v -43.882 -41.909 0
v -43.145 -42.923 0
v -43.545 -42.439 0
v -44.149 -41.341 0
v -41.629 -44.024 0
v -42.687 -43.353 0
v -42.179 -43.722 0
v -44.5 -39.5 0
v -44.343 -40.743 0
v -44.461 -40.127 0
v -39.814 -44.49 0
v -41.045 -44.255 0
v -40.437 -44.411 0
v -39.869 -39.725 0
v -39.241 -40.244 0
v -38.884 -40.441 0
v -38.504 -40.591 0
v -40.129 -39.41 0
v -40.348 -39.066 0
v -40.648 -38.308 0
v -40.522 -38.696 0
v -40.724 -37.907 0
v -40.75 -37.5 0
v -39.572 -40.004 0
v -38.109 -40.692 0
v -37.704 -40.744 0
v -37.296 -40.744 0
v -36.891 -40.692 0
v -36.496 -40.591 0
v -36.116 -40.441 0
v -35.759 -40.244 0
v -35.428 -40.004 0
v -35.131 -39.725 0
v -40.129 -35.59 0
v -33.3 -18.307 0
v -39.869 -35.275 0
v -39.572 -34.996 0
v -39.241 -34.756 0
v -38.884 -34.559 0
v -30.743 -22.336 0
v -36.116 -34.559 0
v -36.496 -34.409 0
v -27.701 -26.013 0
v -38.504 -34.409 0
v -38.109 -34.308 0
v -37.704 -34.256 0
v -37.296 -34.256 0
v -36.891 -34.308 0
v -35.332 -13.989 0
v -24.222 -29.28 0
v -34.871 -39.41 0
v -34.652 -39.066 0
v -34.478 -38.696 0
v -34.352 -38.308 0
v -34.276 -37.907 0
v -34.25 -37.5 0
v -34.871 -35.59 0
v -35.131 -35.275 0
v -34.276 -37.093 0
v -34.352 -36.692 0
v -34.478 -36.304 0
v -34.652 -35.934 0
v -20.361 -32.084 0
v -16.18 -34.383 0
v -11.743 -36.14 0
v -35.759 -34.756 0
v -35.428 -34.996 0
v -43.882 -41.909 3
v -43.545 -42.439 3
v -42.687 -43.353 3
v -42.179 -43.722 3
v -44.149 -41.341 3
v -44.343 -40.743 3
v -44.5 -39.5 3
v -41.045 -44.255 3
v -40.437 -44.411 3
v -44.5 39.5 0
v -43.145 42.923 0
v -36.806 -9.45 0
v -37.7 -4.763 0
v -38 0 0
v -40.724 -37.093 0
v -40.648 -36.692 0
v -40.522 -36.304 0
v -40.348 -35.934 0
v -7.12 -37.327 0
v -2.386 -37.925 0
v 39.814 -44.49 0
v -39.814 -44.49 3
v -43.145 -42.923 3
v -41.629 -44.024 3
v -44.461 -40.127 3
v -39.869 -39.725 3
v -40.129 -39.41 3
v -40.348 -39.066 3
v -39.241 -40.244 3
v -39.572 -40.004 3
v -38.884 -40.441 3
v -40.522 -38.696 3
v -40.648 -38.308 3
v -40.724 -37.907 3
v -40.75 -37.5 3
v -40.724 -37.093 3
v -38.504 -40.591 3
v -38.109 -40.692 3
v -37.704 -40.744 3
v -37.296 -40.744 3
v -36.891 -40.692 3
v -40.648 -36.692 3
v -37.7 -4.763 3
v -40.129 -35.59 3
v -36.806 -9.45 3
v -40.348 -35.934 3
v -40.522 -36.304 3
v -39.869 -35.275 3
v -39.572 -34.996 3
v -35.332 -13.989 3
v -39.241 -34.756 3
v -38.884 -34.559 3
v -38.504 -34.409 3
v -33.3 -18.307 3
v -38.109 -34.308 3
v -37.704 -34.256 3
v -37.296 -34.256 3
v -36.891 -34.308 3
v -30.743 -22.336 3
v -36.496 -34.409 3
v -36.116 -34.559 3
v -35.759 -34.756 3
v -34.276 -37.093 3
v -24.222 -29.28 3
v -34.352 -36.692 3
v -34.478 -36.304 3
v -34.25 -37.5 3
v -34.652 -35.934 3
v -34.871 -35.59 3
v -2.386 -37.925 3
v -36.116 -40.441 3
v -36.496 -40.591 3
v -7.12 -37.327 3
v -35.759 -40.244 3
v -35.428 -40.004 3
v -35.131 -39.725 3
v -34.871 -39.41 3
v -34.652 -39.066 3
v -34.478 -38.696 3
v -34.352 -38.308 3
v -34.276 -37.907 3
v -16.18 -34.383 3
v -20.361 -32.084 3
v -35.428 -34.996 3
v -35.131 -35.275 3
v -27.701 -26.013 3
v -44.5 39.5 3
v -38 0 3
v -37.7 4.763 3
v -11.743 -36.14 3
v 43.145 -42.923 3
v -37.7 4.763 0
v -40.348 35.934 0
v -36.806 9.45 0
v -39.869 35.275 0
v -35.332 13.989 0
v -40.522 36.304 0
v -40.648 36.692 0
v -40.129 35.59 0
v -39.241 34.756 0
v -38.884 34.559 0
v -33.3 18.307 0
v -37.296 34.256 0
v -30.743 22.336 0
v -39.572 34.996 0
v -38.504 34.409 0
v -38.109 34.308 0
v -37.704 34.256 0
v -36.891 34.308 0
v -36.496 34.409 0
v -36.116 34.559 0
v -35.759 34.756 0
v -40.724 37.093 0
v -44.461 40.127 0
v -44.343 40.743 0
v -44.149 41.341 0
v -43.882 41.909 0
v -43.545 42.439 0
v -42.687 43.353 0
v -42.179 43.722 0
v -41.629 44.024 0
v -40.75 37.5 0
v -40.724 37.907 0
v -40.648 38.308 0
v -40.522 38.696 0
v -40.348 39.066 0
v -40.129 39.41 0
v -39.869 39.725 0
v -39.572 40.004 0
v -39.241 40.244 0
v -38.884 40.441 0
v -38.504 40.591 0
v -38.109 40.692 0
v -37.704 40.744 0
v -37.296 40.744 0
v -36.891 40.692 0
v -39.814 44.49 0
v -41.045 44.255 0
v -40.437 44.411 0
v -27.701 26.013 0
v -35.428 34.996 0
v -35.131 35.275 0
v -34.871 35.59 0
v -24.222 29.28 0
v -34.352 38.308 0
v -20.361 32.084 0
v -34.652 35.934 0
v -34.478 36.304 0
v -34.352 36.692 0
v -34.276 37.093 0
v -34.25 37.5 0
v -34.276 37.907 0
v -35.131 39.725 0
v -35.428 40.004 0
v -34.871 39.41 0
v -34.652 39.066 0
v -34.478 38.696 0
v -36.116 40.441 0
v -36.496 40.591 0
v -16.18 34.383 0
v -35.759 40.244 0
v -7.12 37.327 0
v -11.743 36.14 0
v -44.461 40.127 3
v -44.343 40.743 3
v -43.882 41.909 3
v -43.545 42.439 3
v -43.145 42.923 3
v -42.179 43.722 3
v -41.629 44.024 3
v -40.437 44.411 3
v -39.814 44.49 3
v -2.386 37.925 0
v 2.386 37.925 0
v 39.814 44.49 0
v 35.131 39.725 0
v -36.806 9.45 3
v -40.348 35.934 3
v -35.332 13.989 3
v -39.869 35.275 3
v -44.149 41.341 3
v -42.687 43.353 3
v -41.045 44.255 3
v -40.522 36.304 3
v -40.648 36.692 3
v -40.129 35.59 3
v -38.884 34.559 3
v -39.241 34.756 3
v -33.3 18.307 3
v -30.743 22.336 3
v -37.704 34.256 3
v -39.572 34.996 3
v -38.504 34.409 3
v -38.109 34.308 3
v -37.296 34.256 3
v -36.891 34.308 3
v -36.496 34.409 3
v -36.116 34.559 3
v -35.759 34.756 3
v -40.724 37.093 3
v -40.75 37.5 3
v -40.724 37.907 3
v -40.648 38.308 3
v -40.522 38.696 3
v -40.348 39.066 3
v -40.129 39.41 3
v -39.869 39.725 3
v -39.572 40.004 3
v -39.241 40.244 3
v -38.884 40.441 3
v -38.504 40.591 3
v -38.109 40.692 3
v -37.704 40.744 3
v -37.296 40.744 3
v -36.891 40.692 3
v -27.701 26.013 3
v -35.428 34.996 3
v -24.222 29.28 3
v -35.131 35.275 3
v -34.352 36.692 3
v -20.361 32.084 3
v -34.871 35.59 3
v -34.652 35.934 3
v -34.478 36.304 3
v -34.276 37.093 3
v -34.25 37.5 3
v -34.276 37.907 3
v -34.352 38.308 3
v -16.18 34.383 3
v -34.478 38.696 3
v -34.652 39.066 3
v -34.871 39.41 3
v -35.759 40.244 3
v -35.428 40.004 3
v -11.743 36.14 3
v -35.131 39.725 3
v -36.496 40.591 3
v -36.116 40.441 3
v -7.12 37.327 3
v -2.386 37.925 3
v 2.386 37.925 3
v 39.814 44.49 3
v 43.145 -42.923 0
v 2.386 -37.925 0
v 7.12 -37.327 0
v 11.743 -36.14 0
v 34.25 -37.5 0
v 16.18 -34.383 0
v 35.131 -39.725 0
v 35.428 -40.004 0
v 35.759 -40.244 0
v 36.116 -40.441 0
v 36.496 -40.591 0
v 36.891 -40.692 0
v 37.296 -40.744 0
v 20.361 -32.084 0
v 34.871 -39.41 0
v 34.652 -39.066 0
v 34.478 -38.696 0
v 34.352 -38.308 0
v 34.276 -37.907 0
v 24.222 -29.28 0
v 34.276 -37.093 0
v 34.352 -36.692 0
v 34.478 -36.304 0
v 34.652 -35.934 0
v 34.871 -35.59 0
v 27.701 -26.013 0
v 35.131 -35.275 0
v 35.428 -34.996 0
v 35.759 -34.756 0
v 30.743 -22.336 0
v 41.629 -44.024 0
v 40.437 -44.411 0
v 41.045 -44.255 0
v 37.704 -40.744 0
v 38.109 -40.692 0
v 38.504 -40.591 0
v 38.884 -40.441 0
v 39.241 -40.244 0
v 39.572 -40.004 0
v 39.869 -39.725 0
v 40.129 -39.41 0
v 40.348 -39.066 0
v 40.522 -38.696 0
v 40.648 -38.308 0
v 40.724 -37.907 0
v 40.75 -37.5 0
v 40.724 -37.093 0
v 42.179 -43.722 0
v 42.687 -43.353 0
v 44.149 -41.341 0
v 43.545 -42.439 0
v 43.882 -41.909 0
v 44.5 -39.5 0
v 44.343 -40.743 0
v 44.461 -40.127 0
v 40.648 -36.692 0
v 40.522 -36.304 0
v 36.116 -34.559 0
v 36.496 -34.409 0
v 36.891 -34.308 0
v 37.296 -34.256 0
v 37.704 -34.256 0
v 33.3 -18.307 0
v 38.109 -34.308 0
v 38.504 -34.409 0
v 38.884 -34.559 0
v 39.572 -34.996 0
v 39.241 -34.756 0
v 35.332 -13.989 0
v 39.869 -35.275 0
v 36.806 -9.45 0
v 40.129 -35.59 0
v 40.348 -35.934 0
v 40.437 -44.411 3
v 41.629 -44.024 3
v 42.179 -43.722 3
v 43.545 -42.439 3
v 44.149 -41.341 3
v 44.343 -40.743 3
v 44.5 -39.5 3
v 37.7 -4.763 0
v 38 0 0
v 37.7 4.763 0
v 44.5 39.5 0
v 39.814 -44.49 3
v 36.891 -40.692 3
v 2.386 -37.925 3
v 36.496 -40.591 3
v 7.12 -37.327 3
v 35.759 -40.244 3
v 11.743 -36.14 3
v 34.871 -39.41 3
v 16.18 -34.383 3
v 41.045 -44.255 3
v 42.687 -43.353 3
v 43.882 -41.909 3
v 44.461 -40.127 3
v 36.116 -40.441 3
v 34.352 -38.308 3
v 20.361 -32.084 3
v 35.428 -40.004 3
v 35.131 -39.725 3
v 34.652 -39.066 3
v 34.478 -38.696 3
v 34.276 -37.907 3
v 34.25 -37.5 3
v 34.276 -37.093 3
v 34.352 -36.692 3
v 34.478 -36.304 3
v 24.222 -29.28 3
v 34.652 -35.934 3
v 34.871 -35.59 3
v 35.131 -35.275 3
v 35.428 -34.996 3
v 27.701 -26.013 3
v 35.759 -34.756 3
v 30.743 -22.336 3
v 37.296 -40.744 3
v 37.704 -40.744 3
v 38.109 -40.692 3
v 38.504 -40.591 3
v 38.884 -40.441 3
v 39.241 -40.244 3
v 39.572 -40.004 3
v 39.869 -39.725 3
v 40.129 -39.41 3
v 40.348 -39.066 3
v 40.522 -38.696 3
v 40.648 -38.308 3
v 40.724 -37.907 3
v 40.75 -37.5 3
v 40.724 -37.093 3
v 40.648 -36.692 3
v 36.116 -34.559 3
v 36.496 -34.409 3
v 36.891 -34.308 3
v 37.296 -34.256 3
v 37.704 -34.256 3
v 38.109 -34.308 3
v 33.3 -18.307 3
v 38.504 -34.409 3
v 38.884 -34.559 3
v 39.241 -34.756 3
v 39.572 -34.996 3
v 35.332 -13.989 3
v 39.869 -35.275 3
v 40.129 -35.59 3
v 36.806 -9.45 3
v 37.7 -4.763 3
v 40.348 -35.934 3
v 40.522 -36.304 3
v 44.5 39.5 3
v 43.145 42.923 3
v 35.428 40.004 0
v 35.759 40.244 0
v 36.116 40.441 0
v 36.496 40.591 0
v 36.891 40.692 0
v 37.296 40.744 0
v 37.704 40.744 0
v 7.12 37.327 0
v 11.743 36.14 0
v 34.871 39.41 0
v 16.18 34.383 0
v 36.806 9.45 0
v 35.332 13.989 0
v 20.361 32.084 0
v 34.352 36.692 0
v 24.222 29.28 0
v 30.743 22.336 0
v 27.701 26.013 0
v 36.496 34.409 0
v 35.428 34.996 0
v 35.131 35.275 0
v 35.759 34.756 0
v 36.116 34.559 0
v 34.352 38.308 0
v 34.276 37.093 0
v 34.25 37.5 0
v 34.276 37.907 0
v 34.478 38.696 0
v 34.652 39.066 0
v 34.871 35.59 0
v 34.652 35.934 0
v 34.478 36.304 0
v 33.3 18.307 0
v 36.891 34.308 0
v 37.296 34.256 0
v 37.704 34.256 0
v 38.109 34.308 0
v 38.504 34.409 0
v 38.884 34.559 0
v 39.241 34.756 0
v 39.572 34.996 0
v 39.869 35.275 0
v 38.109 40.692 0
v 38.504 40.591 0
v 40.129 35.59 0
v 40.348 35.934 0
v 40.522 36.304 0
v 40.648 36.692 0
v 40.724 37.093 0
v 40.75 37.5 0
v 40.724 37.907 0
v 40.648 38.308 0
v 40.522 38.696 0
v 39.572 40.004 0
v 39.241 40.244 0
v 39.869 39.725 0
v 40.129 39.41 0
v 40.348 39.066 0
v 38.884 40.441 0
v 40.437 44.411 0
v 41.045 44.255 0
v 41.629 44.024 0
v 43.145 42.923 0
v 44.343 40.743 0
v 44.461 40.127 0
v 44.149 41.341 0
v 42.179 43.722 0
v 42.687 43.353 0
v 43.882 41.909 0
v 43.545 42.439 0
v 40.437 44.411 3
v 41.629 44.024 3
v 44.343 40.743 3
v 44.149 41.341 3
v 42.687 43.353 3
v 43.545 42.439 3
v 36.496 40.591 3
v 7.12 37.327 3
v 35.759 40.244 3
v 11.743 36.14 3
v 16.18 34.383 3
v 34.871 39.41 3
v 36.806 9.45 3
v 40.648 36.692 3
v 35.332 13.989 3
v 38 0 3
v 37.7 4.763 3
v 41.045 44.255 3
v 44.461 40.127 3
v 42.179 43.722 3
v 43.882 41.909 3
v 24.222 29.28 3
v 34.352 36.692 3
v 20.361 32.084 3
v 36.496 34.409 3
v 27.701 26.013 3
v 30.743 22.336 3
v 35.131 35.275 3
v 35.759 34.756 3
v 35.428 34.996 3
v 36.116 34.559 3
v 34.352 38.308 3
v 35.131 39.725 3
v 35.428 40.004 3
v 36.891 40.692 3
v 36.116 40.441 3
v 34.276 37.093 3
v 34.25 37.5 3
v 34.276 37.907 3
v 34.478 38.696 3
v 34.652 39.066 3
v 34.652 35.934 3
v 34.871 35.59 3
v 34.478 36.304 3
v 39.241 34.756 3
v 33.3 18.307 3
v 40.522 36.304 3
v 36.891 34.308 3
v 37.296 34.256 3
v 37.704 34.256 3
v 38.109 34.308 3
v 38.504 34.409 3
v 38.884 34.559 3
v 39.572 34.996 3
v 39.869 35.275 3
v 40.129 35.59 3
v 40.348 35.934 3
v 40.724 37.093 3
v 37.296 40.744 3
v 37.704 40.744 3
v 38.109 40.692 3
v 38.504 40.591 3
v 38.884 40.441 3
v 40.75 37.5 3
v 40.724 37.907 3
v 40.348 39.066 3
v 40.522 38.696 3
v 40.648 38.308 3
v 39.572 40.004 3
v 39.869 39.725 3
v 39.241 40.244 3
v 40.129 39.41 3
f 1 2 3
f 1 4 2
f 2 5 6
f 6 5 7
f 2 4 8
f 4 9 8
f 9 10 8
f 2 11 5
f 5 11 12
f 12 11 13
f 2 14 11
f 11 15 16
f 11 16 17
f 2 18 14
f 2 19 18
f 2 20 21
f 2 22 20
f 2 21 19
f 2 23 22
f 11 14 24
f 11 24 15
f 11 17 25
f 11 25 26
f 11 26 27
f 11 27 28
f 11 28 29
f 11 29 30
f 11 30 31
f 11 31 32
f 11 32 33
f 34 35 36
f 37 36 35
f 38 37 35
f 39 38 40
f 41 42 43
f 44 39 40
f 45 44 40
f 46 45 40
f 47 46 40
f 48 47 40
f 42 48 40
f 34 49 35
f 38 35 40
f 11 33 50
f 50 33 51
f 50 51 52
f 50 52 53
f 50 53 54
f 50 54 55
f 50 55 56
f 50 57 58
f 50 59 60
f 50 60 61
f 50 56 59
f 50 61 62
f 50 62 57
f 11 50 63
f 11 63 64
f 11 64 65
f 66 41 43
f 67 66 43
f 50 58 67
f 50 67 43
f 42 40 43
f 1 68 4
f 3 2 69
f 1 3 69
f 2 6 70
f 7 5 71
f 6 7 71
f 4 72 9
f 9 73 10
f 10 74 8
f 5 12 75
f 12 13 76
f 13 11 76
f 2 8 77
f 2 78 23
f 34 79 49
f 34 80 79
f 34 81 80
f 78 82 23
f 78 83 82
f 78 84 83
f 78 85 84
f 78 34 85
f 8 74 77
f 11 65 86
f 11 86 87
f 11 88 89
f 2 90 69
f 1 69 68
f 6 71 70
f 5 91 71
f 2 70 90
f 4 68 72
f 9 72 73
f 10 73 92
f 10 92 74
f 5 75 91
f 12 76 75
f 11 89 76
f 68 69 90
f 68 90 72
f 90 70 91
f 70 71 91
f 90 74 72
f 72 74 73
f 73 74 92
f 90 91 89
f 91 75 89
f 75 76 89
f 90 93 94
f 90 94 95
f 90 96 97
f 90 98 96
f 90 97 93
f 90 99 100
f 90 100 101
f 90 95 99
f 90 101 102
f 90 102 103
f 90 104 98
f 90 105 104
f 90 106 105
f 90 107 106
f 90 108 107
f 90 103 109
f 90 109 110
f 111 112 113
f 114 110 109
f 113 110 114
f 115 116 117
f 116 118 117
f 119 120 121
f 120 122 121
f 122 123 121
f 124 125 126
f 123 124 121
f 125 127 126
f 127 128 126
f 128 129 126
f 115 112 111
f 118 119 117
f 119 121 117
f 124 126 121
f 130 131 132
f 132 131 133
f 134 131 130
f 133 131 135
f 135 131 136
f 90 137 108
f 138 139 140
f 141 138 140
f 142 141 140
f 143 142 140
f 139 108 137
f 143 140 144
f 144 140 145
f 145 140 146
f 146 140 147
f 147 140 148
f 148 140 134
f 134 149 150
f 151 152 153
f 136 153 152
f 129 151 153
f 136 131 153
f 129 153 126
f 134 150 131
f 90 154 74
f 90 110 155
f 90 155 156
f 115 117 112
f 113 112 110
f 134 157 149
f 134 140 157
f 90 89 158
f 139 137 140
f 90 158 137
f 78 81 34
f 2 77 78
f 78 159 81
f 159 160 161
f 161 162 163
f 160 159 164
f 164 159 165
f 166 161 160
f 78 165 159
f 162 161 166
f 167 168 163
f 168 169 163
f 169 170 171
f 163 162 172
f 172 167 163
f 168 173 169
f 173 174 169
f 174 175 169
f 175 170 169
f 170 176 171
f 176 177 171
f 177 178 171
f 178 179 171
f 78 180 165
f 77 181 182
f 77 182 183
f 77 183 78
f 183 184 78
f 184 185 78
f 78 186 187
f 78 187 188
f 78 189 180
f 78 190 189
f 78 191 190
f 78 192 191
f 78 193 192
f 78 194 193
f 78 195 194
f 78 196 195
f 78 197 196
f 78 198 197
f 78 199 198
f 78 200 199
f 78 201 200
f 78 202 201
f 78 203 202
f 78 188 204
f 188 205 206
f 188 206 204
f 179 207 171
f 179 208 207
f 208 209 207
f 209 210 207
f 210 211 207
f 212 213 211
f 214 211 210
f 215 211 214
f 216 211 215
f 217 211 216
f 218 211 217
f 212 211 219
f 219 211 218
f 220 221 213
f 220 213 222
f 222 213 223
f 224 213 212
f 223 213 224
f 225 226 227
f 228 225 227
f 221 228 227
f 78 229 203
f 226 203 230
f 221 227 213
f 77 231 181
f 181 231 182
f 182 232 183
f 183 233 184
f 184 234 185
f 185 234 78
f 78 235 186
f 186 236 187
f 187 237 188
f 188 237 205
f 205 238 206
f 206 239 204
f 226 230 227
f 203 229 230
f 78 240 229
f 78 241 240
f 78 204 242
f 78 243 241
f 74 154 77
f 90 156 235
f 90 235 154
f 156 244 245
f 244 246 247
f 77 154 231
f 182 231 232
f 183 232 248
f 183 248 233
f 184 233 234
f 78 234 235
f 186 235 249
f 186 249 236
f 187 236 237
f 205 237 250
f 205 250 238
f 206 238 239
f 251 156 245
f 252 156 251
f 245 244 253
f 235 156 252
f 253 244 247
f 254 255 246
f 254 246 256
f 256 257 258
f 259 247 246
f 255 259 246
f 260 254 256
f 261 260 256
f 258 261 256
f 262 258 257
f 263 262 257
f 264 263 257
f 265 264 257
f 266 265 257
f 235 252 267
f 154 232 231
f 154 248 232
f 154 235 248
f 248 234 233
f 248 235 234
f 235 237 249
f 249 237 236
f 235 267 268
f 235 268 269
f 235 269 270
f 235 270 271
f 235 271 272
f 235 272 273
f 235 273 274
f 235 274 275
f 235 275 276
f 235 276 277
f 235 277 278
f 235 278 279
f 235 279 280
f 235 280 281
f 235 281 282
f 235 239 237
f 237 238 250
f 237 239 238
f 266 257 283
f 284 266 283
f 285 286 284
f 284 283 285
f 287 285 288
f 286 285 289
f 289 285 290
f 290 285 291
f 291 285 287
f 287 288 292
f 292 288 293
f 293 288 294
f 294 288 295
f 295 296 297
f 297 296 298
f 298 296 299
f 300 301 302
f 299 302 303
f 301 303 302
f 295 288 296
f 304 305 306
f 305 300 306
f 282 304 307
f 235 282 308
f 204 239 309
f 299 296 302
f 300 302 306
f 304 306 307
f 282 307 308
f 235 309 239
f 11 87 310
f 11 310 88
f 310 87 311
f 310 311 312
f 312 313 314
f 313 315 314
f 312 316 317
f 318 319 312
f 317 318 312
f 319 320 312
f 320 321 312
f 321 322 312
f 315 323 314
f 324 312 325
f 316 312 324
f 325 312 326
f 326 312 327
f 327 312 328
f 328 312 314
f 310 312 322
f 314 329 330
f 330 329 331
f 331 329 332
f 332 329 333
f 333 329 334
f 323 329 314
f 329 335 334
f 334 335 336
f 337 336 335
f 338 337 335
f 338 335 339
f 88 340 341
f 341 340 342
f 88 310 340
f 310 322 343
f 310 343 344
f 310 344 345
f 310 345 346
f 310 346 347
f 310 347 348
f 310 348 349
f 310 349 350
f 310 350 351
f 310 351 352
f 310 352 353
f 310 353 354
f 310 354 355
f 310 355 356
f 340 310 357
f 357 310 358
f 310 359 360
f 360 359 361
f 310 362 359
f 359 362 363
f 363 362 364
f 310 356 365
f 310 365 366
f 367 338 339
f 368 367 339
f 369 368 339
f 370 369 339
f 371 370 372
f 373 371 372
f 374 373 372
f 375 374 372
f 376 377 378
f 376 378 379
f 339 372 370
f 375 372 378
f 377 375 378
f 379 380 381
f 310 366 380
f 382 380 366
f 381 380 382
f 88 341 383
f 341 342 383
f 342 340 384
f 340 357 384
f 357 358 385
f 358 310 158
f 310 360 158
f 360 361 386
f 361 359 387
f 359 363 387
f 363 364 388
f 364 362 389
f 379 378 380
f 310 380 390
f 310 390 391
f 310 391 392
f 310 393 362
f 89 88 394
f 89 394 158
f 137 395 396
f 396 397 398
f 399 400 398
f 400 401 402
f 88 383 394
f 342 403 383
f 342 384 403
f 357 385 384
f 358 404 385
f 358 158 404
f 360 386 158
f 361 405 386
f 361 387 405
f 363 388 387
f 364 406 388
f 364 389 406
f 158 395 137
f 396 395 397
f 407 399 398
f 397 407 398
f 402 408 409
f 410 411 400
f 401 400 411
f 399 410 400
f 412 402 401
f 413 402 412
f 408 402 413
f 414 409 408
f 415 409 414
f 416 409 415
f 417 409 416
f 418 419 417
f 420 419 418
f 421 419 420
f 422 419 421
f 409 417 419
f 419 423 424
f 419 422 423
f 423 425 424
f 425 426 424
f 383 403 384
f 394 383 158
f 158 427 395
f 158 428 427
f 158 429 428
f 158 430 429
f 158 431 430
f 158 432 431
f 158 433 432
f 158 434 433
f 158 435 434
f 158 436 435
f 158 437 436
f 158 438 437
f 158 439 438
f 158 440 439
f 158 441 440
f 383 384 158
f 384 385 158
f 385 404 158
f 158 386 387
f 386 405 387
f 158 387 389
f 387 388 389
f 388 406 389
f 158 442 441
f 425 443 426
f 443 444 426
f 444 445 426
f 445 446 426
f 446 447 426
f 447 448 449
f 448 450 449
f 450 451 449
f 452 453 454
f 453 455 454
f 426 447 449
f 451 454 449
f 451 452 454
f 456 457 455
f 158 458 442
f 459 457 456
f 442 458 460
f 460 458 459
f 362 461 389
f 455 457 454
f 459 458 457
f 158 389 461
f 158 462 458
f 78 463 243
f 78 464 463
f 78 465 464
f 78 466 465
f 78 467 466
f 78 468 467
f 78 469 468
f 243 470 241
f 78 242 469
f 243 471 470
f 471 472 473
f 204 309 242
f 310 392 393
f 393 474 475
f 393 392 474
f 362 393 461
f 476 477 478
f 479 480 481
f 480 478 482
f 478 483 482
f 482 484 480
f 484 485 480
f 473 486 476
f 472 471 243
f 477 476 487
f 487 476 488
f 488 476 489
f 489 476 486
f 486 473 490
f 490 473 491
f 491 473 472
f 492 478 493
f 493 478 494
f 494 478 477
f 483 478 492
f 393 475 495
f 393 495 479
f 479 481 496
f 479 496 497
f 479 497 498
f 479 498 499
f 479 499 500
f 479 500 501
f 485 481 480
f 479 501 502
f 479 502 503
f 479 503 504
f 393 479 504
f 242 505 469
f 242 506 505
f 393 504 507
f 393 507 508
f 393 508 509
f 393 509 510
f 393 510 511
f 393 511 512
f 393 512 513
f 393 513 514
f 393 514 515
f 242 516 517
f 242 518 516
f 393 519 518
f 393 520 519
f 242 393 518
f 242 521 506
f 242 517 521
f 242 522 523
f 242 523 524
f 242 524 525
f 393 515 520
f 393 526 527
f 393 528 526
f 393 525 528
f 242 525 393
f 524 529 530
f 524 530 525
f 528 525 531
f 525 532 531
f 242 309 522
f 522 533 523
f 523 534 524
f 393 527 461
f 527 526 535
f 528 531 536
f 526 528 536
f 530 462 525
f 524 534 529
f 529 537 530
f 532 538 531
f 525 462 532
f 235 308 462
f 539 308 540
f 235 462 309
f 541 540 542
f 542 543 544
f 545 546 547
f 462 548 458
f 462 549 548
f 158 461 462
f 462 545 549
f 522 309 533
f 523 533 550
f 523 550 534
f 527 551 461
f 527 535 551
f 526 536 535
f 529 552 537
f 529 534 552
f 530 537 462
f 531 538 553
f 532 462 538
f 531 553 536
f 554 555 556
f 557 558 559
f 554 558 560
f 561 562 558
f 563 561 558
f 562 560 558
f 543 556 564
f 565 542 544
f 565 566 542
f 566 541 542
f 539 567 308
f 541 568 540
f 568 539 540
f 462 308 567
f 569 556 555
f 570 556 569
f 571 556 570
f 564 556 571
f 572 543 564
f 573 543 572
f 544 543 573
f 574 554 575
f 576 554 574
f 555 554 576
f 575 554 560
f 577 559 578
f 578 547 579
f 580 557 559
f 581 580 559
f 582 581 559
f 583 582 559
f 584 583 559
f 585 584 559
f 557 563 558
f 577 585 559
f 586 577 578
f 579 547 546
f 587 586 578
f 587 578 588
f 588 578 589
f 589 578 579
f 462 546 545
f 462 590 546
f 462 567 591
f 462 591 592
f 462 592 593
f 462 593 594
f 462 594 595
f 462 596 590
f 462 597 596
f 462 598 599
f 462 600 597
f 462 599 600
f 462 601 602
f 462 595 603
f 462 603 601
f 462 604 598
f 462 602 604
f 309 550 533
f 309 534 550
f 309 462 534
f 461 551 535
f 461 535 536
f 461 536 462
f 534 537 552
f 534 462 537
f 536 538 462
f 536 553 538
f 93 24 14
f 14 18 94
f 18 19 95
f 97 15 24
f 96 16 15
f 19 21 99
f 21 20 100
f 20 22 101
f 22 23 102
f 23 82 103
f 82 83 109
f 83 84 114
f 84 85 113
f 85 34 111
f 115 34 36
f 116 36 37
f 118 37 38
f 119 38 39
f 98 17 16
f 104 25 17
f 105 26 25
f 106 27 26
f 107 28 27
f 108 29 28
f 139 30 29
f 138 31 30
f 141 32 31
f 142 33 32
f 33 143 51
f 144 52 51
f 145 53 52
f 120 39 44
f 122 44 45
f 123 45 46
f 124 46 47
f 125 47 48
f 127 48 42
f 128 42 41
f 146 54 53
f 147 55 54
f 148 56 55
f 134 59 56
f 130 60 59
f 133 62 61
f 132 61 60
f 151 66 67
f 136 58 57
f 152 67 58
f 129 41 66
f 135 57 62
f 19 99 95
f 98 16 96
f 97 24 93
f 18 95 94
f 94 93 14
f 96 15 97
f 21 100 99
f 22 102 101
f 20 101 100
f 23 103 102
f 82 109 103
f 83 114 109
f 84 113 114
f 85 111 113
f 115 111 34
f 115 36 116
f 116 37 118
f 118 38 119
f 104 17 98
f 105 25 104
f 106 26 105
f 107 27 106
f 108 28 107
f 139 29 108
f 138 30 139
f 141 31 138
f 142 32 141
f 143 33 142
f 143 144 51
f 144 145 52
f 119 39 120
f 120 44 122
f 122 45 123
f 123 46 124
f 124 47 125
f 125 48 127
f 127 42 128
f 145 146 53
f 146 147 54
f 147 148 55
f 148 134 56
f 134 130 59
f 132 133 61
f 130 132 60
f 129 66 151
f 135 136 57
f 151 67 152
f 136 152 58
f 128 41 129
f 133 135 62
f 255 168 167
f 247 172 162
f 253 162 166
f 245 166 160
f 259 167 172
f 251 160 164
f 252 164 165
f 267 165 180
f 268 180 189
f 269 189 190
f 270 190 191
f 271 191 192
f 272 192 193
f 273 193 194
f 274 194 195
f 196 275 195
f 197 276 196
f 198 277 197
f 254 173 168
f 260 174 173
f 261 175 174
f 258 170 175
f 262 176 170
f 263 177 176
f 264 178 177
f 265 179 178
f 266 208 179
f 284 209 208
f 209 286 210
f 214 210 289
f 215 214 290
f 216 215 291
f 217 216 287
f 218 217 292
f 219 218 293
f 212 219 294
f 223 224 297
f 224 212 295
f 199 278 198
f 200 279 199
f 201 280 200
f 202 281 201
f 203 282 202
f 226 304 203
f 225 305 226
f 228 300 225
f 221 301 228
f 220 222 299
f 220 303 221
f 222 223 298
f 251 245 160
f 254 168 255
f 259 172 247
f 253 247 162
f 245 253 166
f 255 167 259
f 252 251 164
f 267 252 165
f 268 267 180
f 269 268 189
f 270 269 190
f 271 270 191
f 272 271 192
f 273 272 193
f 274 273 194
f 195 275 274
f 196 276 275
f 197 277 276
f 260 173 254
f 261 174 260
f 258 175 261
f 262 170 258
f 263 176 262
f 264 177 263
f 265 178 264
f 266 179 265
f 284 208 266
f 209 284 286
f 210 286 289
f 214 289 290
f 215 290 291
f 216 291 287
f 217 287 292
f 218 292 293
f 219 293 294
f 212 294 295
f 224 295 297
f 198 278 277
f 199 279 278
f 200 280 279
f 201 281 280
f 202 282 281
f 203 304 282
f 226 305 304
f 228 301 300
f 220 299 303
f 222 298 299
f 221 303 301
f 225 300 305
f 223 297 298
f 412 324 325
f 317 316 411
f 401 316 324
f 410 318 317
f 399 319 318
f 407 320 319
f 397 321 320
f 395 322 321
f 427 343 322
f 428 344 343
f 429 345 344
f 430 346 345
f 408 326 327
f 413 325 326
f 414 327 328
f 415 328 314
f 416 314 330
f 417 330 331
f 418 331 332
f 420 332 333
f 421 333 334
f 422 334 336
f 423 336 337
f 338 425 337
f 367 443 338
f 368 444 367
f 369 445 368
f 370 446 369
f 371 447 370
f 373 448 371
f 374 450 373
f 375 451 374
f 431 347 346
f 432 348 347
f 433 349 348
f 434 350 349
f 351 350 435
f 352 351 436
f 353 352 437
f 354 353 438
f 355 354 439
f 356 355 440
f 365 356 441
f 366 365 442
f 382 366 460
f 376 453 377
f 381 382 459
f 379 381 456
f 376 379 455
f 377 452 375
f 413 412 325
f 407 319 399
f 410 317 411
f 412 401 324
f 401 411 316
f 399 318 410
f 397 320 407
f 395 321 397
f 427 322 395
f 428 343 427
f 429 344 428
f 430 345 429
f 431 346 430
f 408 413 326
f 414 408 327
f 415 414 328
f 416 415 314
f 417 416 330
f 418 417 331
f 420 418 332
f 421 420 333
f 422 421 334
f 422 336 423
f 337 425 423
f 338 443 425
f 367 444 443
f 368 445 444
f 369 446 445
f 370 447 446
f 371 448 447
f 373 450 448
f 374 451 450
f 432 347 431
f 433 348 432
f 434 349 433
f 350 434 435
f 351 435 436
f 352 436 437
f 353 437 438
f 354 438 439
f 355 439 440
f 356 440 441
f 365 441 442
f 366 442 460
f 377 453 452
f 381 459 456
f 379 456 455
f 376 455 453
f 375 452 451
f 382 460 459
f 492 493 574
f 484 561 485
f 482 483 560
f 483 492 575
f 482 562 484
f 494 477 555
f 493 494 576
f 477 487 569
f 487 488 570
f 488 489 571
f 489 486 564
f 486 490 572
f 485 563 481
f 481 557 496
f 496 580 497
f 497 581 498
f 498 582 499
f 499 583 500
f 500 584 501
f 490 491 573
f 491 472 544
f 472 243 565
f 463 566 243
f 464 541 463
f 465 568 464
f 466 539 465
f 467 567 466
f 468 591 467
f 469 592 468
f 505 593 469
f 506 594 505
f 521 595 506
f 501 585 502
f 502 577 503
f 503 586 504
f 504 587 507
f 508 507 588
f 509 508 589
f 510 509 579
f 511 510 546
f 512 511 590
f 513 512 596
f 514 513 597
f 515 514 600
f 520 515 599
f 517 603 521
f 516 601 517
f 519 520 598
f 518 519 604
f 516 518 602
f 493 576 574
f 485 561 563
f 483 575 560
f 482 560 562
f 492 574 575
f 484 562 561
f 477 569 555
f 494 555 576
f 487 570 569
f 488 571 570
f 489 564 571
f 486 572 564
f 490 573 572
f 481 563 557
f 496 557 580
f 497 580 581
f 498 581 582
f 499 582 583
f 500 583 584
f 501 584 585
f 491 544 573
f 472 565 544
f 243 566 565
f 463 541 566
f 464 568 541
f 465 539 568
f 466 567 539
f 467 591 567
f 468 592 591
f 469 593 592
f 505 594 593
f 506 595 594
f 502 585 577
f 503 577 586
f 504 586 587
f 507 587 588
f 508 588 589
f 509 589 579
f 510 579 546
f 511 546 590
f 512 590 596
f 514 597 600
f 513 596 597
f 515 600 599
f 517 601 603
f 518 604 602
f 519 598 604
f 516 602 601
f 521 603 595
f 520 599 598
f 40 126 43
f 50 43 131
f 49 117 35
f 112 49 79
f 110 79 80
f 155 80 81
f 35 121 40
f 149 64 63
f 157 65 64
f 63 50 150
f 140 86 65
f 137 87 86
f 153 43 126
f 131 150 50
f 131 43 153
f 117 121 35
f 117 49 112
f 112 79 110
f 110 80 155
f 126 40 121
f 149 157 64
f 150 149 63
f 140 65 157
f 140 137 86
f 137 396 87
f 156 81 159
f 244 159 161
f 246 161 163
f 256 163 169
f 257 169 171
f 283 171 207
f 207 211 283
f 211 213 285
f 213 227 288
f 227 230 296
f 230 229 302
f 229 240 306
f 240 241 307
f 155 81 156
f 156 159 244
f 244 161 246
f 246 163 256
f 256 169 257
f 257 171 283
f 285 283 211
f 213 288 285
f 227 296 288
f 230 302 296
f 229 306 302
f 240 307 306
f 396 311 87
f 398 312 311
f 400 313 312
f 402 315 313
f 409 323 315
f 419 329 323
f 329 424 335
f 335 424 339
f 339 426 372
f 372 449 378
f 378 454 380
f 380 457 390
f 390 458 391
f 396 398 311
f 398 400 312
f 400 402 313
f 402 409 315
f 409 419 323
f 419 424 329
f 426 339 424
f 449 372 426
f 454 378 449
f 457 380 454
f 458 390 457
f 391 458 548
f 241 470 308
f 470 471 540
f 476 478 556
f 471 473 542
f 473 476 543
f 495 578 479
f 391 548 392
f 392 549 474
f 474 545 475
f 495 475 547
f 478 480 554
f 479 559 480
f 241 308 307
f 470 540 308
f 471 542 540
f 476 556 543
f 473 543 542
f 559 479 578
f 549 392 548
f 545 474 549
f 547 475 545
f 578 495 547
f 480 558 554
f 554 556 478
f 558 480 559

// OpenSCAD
$fn = 50;

difference() {
	union() {
		hull() {
			translate(v = [-39.5, 39.5, 0]) {
				cylinder(h = 3, r = 5);
			}
			translate(v = [39.5, 39.5, 0]) {
				cylinder(h = 3, r = 5);
			}
			translate(v = [-39.5, -39.5, 0]) {
				cylinder(h = 3, r = 5);
			}
			translate(v = [39.5, -39.5, 0]) {
				cylinder(h = 3, r = 5);
			}
		}
	}
	union() {
		translate(v = [-37.5, -37.5, -100.0]) {
			cylinder(h = 200, r = 3.25);
		}
		translate(v = [-37.5, 37.5, -100.0]) {
			cylinder(h = 200, r = 3.25);
		}
		translate(v = [37.5, -37.5, -100.0]) {
			cylinder(h = 200, r = 3.25);
		}
		translate(v = [37.5, 37.5, -100.0]) {
			cylinder(h = 200, r = 3.25);
		}
		translate(v = [-37.5, -37.5, -100.0]) {
			cylinder(h = 200, r = 1.8);
		}
		translate(v = [-37.5, 37.5, -100.0]) {
			cylinder(h = 200, r = 1.8);
		}
		translate(v = [37.5, -37.5, -100.0]) {
			cylinder(h = 200, r = 1.8);
		}
		translate(v = [37.5, 37.5, -100.0]) {
			cylinder(h = 200, r = 1.8);
		}
		cylinder(h = 3, r = 38.0);
	}
}
